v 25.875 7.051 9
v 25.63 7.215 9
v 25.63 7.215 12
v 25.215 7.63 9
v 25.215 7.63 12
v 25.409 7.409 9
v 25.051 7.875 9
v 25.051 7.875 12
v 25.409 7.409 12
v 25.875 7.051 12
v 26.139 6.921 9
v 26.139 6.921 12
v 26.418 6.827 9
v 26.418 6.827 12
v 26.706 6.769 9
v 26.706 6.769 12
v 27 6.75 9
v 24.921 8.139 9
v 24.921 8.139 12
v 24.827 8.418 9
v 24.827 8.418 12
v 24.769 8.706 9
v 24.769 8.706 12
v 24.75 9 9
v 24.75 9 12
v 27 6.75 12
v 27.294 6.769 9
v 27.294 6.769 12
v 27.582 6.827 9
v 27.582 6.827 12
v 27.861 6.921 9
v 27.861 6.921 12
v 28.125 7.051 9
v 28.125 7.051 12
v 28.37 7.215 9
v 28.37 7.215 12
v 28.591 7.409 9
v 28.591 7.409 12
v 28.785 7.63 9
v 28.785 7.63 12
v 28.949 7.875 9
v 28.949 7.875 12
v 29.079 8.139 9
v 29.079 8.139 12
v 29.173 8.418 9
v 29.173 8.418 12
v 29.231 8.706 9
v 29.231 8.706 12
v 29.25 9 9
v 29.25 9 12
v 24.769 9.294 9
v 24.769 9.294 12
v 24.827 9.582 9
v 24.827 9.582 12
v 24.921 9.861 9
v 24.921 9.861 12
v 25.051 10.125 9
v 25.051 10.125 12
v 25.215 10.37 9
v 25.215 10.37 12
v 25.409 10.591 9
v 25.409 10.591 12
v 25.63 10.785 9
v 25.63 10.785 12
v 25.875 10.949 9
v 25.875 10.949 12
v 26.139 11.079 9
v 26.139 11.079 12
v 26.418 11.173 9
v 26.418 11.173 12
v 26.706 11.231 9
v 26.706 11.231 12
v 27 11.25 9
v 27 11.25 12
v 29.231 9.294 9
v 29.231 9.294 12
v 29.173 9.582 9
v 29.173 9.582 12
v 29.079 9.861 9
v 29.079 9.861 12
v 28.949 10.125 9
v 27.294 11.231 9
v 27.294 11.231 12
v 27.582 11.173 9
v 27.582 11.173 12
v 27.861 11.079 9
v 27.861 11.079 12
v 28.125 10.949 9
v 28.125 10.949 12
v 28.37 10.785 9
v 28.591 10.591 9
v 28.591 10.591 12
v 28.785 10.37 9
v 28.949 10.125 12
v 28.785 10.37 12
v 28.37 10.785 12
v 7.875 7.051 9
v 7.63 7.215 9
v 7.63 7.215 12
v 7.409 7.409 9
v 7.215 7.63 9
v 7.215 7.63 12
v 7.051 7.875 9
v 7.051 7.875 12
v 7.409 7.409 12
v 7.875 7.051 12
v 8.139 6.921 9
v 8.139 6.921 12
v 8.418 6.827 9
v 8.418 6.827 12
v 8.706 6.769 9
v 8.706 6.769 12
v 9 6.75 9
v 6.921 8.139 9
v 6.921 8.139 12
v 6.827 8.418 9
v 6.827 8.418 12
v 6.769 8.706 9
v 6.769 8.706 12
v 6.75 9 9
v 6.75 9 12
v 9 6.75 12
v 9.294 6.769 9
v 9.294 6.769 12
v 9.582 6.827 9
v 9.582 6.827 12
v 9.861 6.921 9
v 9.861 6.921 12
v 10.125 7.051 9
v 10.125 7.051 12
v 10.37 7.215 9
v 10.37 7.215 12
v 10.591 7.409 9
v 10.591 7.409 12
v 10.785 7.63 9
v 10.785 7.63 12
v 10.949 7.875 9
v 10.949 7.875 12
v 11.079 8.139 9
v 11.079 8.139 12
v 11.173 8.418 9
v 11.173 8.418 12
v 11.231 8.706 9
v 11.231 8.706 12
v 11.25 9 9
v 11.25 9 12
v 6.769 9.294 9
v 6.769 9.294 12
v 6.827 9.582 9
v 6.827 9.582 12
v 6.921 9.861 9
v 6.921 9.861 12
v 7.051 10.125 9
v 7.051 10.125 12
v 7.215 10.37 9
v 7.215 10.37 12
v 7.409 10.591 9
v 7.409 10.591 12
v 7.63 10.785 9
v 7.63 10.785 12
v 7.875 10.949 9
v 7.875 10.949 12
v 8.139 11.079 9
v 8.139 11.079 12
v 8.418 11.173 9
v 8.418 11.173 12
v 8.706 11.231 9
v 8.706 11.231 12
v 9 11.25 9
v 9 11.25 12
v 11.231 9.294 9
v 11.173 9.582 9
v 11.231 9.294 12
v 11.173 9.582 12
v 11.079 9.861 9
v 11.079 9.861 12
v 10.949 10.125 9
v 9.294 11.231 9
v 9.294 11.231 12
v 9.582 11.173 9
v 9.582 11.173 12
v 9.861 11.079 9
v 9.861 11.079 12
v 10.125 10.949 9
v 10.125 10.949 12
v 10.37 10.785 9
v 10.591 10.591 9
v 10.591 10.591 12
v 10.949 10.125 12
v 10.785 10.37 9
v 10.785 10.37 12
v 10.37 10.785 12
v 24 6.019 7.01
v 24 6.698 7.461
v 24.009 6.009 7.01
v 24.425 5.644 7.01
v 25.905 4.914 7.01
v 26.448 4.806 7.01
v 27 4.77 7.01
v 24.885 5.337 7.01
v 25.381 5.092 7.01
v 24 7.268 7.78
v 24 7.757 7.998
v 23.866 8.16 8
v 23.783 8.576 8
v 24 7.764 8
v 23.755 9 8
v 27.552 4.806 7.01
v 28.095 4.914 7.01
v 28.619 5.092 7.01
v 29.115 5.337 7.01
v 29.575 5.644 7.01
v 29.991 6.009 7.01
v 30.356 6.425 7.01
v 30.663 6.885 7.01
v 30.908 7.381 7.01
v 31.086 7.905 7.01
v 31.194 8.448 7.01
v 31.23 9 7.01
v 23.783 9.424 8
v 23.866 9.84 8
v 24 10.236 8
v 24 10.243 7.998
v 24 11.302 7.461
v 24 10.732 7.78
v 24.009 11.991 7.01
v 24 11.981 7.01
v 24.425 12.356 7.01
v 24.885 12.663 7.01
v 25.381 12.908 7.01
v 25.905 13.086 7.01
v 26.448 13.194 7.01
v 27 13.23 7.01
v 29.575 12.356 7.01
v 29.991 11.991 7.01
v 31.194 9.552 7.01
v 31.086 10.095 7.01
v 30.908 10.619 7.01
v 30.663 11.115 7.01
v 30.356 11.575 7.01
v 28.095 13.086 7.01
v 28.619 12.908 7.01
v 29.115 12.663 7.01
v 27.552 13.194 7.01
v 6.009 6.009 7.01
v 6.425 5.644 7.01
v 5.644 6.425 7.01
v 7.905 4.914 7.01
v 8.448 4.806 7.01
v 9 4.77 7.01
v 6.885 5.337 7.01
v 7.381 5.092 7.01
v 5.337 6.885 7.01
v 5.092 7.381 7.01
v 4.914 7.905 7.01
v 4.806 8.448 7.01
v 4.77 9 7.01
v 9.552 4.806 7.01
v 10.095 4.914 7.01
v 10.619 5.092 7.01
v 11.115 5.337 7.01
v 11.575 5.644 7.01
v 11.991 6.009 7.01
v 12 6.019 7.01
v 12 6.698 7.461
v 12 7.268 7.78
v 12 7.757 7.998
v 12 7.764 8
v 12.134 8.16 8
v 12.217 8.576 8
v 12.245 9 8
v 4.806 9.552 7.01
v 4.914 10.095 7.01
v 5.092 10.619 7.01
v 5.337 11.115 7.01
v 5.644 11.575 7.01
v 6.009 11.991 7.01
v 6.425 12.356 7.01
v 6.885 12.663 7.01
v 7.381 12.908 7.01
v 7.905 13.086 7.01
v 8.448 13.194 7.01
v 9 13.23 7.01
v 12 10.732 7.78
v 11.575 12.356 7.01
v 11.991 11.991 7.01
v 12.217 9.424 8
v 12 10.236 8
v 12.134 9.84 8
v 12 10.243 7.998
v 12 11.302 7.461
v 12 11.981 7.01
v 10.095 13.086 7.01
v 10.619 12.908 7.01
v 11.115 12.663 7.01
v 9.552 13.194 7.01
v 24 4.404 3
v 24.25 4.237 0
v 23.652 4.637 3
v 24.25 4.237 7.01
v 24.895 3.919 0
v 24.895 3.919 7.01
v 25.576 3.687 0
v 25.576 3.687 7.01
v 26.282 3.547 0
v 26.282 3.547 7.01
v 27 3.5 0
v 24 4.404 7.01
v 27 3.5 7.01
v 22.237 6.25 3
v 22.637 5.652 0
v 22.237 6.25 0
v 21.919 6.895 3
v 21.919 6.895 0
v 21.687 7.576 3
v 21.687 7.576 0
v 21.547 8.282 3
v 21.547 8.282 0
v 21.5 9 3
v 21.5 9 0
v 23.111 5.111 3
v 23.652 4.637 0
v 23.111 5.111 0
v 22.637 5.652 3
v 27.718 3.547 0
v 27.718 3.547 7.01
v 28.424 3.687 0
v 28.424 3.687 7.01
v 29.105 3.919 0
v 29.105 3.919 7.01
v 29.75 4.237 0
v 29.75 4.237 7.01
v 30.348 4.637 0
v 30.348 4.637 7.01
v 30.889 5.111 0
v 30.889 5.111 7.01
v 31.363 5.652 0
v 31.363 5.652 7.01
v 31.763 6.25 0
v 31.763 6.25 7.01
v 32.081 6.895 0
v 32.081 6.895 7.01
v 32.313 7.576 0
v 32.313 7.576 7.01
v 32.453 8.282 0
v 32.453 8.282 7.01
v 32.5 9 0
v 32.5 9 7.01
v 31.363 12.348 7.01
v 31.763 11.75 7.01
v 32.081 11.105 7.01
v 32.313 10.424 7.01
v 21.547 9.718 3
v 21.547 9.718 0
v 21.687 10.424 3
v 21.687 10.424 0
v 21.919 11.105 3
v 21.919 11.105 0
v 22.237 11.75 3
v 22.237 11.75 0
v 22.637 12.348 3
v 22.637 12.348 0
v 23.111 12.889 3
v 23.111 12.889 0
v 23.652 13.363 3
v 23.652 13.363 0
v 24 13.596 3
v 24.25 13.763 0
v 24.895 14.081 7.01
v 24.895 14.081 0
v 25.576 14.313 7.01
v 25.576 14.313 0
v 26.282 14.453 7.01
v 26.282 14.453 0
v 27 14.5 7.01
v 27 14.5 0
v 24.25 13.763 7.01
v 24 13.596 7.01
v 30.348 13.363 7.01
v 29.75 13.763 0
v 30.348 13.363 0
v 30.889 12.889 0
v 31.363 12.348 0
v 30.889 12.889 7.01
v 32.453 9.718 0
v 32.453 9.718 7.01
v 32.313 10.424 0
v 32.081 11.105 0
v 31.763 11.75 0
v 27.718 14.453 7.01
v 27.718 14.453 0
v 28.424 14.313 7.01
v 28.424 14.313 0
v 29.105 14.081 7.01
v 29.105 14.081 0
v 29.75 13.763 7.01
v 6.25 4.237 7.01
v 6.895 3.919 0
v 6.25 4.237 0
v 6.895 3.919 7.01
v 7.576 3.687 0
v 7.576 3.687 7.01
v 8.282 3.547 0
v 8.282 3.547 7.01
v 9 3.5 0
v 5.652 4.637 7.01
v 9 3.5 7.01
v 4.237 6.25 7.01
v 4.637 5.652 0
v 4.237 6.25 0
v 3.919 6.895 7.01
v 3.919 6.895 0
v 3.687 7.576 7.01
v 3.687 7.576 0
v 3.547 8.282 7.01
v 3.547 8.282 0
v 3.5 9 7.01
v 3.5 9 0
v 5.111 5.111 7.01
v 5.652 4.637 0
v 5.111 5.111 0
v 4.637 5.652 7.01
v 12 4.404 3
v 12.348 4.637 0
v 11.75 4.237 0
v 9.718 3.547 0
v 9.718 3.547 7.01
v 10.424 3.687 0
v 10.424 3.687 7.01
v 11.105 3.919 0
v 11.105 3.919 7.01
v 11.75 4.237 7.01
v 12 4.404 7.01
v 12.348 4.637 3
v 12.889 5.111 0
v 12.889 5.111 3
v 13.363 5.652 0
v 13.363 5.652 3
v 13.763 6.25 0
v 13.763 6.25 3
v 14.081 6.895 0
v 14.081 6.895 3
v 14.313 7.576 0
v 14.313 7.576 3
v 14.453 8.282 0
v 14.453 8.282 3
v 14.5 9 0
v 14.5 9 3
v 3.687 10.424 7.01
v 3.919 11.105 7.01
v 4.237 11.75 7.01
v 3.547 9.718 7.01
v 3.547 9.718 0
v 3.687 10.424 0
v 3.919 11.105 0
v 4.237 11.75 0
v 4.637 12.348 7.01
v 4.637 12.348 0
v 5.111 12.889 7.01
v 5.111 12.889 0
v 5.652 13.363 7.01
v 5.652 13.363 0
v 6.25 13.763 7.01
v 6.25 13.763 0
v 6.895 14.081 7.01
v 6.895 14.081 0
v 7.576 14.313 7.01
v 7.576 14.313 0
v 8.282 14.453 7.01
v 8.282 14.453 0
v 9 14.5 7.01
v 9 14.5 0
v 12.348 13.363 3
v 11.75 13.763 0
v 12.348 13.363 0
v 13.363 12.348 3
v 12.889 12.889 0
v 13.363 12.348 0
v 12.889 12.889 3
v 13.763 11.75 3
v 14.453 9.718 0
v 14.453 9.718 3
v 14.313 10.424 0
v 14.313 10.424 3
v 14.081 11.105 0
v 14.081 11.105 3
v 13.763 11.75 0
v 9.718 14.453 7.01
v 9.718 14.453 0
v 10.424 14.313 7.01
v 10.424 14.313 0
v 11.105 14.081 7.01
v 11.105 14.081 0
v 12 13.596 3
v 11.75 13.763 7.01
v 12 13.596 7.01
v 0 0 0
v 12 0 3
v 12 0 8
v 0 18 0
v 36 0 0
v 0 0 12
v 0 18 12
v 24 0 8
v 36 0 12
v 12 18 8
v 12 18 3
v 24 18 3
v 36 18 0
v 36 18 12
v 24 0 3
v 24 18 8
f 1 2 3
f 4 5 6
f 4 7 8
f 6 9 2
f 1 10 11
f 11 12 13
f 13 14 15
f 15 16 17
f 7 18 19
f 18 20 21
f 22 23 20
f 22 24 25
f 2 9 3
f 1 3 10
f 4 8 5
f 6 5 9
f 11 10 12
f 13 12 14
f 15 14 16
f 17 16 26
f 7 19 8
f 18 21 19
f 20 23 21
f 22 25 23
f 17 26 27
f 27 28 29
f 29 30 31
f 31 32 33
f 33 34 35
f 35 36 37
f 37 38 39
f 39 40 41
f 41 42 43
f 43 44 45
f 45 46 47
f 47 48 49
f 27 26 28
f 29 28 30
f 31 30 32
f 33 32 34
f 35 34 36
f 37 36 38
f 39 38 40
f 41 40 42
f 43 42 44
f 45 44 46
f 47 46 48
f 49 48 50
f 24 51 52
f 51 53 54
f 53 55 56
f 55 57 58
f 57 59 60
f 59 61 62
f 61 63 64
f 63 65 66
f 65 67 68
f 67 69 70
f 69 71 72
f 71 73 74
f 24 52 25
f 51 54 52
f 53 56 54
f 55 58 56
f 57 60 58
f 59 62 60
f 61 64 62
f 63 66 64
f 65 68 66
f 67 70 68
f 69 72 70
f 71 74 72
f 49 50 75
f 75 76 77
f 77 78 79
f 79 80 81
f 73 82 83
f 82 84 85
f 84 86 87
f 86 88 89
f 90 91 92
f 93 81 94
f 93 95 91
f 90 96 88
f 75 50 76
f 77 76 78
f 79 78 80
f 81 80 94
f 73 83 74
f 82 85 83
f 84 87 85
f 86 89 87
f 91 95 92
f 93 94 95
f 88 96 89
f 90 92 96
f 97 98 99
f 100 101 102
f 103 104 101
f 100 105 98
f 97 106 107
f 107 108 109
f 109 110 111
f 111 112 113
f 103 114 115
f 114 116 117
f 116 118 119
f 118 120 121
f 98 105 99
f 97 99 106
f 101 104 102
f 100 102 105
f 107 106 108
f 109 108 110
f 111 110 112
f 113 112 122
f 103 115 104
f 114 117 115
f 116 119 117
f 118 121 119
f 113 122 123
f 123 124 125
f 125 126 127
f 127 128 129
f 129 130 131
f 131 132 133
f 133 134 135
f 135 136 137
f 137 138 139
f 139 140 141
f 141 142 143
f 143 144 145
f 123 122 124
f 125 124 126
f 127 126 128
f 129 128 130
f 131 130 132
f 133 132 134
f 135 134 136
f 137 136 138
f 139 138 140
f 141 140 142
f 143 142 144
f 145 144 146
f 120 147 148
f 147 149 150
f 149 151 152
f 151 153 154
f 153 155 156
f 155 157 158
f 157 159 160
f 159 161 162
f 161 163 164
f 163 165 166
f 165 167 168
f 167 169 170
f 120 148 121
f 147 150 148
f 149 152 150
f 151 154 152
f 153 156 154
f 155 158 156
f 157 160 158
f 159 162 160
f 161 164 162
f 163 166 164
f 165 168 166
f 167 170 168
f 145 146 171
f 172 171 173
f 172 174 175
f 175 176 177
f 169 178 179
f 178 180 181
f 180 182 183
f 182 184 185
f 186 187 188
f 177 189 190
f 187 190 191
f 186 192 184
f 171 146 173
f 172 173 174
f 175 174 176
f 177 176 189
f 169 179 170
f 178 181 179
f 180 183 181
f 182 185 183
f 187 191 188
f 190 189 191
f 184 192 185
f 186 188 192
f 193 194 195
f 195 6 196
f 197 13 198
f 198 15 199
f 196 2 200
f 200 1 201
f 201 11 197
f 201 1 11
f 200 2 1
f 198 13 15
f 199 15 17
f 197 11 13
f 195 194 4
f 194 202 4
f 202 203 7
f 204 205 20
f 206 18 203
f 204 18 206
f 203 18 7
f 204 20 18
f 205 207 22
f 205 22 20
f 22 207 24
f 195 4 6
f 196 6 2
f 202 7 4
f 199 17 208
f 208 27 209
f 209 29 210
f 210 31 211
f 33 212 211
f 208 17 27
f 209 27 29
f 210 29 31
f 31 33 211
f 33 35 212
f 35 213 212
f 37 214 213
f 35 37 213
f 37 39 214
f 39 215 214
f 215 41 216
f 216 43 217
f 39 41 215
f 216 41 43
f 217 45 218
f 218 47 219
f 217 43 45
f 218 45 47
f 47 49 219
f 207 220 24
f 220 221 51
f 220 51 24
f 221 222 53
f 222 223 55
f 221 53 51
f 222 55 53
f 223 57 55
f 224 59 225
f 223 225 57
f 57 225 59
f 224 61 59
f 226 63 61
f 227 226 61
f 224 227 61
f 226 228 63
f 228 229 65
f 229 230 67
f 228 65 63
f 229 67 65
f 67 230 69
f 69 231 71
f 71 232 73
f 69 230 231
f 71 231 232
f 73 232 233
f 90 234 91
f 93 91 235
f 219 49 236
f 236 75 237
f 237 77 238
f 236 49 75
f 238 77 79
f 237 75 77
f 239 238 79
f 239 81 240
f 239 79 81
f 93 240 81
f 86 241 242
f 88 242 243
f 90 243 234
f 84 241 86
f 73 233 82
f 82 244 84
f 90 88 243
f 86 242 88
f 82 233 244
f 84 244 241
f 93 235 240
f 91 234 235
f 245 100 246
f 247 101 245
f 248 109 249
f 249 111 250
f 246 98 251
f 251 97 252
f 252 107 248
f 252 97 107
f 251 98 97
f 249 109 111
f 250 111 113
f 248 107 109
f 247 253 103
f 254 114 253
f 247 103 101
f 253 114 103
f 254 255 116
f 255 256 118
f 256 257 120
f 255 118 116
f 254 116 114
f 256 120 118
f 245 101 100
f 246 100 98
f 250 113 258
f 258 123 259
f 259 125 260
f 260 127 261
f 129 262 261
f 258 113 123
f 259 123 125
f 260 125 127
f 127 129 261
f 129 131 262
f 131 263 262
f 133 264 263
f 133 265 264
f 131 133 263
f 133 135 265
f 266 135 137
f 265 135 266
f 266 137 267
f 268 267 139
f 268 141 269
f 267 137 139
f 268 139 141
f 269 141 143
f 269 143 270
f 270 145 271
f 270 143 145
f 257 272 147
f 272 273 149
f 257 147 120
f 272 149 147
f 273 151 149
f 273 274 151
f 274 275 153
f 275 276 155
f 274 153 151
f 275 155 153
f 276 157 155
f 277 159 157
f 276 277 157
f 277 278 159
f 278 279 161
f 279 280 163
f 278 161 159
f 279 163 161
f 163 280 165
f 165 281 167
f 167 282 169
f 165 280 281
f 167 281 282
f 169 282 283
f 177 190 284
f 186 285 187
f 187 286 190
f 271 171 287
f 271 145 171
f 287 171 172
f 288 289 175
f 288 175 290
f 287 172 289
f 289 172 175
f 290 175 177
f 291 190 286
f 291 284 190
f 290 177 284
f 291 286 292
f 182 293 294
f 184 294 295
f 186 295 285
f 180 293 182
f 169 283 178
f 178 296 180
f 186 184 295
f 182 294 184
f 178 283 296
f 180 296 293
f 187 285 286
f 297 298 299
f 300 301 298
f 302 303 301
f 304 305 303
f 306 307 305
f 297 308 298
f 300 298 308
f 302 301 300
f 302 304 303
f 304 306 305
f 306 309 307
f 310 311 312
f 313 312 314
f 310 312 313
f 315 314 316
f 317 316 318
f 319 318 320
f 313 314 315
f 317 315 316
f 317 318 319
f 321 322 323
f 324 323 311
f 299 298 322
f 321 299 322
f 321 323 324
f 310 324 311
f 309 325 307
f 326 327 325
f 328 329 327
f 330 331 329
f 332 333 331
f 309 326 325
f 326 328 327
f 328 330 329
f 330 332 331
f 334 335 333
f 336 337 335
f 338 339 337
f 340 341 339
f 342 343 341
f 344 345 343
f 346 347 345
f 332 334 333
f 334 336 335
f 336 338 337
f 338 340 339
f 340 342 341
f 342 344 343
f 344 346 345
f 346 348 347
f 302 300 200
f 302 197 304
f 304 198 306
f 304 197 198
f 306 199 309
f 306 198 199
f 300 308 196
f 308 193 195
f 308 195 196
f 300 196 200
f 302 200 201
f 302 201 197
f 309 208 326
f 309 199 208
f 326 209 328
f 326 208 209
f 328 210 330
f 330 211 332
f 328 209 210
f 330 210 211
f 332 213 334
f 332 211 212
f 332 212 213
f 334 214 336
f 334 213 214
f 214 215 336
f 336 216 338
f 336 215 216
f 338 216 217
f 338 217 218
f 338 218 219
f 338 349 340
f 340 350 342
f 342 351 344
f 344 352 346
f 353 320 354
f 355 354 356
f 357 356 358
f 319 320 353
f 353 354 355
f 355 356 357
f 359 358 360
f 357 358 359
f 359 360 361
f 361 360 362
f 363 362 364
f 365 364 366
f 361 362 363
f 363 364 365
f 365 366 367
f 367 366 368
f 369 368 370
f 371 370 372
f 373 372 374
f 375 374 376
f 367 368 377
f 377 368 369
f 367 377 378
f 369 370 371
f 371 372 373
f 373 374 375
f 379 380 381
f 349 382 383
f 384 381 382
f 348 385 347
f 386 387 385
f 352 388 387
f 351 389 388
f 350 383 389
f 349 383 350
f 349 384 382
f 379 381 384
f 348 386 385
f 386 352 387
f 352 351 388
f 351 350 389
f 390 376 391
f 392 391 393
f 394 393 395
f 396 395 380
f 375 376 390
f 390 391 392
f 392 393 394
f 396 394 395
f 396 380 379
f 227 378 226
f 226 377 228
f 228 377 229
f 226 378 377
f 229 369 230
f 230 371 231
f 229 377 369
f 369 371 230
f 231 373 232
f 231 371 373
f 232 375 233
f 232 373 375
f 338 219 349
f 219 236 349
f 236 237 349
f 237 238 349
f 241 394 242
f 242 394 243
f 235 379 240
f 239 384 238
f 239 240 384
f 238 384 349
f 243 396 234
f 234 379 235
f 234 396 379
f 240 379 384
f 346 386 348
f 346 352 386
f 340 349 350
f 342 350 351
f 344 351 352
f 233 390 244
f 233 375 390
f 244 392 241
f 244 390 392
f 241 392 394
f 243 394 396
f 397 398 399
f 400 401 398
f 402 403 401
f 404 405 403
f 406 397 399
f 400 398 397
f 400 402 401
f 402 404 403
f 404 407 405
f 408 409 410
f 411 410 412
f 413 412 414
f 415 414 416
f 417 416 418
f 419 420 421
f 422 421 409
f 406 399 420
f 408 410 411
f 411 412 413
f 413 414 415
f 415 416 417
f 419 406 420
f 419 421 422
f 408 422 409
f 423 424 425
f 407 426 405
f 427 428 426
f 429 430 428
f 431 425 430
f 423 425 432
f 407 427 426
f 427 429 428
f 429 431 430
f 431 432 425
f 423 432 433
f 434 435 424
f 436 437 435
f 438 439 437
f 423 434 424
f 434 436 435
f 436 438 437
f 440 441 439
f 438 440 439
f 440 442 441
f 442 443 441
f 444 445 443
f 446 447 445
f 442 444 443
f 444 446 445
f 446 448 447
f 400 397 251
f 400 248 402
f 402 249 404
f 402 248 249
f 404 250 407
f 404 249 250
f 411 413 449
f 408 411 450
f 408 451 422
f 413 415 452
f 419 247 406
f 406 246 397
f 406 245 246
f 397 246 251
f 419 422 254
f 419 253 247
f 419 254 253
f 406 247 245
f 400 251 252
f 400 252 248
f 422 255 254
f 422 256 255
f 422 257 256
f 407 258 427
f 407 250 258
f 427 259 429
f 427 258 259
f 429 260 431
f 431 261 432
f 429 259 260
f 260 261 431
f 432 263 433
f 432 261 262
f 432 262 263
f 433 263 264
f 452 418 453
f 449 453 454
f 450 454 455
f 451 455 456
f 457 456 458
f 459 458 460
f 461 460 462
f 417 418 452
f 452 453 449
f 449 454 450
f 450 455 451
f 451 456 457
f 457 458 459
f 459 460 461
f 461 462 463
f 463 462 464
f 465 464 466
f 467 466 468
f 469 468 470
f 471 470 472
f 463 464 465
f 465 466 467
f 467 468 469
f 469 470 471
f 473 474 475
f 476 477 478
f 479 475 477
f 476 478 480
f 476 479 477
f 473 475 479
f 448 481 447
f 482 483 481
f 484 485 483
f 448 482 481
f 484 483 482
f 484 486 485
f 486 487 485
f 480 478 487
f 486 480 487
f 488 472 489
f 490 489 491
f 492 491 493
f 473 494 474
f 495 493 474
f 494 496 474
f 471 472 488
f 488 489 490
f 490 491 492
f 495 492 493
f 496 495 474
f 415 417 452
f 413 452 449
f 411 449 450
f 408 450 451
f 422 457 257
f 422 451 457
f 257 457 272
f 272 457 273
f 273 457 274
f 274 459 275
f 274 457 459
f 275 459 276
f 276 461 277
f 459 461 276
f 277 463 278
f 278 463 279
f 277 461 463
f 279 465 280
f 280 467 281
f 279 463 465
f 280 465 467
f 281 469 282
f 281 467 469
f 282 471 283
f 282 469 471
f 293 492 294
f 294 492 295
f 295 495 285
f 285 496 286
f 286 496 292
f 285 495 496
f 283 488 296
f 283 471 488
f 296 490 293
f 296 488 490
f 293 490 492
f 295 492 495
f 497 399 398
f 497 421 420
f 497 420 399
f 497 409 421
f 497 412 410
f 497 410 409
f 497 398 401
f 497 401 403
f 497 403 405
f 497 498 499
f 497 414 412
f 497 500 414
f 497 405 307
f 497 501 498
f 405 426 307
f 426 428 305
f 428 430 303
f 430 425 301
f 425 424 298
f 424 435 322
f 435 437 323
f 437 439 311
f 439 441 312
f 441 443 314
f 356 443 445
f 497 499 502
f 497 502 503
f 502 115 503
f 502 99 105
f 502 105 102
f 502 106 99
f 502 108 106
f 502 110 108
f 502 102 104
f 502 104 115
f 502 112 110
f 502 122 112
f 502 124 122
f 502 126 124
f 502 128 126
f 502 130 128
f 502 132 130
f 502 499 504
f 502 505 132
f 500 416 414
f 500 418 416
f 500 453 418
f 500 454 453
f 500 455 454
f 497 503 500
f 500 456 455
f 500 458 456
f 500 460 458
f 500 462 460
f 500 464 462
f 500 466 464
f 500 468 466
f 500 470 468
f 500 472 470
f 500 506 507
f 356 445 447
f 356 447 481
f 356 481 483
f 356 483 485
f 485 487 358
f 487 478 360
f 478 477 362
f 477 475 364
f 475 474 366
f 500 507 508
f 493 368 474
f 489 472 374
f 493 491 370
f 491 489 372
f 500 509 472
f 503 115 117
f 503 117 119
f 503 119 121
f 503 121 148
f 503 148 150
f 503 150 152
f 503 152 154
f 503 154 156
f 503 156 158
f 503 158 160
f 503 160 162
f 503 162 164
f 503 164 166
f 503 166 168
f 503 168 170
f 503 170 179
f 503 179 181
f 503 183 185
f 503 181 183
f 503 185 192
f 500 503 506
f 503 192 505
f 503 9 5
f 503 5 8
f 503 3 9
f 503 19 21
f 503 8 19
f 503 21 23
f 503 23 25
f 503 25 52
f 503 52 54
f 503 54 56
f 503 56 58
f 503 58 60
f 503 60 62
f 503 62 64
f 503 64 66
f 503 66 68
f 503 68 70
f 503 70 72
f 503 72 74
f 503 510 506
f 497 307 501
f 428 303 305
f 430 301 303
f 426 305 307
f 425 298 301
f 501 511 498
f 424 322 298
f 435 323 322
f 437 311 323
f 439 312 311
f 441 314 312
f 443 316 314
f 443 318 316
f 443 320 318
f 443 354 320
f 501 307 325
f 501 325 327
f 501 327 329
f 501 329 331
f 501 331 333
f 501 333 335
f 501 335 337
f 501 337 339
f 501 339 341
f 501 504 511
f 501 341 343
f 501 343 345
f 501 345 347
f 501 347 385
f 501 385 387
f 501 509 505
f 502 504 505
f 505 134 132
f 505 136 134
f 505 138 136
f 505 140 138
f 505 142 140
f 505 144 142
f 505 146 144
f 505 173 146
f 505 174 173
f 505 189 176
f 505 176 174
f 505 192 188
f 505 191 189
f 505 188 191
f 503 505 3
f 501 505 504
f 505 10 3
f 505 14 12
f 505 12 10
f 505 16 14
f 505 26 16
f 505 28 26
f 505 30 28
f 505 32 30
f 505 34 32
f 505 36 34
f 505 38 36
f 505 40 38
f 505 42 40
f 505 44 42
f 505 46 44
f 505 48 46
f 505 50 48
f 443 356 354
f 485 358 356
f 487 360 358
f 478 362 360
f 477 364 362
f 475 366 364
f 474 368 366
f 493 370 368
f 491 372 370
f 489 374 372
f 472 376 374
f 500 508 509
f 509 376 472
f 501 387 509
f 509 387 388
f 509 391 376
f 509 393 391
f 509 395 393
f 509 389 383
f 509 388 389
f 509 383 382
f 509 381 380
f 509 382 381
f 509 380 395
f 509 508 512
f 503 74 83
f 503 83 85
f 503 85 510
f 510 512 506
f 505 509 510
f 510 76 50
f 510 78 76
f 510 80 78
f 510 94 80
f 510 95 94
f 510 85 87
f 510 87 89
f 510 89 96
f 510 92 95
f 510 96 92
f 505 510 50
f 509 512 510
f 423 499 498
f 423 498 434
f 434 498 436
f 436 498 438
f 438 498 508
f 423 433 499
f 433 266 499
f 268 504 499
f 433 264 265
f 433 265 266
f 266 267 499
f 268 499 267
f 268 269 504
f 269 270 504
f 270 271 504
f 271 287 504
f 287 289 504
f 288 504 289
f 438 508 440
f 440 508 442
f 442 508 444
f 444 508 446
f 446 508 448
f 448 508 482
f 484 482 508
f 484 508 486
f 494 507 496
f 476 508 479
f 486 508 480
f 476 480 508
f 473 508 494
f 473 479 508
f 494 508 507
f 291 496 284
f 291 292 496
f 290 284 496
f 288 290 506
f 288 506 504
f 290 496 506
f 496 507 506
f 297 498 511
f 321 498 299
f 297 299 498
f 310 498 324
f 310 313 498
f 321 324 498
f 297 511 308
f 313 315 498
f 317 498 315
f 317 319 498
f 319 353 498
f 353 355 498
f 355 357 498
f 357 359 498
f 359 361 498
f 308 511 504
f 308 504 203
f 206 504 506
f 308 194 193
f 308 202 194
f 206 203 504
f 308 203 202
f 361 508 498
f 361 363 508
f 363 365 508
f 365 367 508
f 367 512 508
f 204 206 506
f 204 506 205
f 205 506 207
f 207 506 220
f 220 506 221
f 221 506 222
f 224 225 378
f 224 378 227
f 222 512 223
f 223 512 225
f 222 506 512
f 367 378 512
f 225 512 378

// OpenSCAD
// =====================================================================
//  CLIP-LADRON — anclaje suelto para colgar el ladron de una regleta
//  bajo un tablero. No depende de ningun ojal ni gancho del ladron:
//  se atornilla al tablero y una brida de plastico pasa por el agujero,
//  rodea el ladron (que queda pegado al mismo tablero, junto al clip) y
//  lo ciñe contra la madera. Van 2 (a lo largo del ladron), 2 tornillos
//  cada uno = 4 en total.
//  Un bloque bajo y macizo: nada en voladizo, toda la carga (minima) va
//  en compresion/cortante sobre un bloque solido, no sobre un brazo fino.
//  Independiente de torre-homelab y de bajomesa-homelab: sirve para
//  cualquiera de los dos.
//  Milimetros.
// =====================================================================

$fn = 48;

// --- 1. TORNILLOS (aglomerado 4x20, cabeza avellanada) ----------------
d_vastago = 4;
d_cabeza  = 8;
hol_paso  = 0.5;
d_paso  = d_vastago + hol_paso;   // 4.5  paso
d_avell = d_cabeza  + hol_paso;   // 8.5  boca del avellanado
d_hueco = 11;                     // acceso del destornillador
h_avell = (d_avell - d_paso)/2;
t_paso  = 5;                      // atraviesa el plastico, deja 15 mm en la madera

module taladro(h) {
    z0 = h - t_paso;
    translate([0, 0, z0 - 0.01]) cylinder(h = t_paso + 0.11, d = d_paso);
    translate([0, 0, z0 - 0.01]) cylinder(h = h_avell + 0.01, d1 = d_avell, d2 = d_paso);
    if (z0 > 0.02)
        translate([0, 0, -0.1]) cylinder(h = z0 + 0.11, d = d_hueco);
}

// --- 2. EL BLOQUE --------------------------------------------------------
BLOQUE_x = 36;  BLOQUE_y = 18;  BLOQUE_t = 12;

// Agujero para la brida: pasa de lado a lado, separado en X de los dos
// tornillos para no comerse el hueco del destornillador de ninguno.
SLOT_w = 12;  SLOT_h = 5;  SLOT_z0 = 3;

module clip_ladron() {
    difference() {
        cube([BLOQUE_x, BLOQUE_y, BLOQUE_t]);
        translate([9, BLOQUE_y/2, 0])            taladro(BLOQUE_t);
        translate([BLOQUE_x - 9, BLOQUE_y/2, 0]) taladro(BLOQUE_t);
        translate([BLOQUE_x/2 - SLOT_w/2, -1, SLOT_z0])
            cube([SLOT_w, BLOQUE_y + 2, SLOT_h]);
    }
}

clip_ladron();
